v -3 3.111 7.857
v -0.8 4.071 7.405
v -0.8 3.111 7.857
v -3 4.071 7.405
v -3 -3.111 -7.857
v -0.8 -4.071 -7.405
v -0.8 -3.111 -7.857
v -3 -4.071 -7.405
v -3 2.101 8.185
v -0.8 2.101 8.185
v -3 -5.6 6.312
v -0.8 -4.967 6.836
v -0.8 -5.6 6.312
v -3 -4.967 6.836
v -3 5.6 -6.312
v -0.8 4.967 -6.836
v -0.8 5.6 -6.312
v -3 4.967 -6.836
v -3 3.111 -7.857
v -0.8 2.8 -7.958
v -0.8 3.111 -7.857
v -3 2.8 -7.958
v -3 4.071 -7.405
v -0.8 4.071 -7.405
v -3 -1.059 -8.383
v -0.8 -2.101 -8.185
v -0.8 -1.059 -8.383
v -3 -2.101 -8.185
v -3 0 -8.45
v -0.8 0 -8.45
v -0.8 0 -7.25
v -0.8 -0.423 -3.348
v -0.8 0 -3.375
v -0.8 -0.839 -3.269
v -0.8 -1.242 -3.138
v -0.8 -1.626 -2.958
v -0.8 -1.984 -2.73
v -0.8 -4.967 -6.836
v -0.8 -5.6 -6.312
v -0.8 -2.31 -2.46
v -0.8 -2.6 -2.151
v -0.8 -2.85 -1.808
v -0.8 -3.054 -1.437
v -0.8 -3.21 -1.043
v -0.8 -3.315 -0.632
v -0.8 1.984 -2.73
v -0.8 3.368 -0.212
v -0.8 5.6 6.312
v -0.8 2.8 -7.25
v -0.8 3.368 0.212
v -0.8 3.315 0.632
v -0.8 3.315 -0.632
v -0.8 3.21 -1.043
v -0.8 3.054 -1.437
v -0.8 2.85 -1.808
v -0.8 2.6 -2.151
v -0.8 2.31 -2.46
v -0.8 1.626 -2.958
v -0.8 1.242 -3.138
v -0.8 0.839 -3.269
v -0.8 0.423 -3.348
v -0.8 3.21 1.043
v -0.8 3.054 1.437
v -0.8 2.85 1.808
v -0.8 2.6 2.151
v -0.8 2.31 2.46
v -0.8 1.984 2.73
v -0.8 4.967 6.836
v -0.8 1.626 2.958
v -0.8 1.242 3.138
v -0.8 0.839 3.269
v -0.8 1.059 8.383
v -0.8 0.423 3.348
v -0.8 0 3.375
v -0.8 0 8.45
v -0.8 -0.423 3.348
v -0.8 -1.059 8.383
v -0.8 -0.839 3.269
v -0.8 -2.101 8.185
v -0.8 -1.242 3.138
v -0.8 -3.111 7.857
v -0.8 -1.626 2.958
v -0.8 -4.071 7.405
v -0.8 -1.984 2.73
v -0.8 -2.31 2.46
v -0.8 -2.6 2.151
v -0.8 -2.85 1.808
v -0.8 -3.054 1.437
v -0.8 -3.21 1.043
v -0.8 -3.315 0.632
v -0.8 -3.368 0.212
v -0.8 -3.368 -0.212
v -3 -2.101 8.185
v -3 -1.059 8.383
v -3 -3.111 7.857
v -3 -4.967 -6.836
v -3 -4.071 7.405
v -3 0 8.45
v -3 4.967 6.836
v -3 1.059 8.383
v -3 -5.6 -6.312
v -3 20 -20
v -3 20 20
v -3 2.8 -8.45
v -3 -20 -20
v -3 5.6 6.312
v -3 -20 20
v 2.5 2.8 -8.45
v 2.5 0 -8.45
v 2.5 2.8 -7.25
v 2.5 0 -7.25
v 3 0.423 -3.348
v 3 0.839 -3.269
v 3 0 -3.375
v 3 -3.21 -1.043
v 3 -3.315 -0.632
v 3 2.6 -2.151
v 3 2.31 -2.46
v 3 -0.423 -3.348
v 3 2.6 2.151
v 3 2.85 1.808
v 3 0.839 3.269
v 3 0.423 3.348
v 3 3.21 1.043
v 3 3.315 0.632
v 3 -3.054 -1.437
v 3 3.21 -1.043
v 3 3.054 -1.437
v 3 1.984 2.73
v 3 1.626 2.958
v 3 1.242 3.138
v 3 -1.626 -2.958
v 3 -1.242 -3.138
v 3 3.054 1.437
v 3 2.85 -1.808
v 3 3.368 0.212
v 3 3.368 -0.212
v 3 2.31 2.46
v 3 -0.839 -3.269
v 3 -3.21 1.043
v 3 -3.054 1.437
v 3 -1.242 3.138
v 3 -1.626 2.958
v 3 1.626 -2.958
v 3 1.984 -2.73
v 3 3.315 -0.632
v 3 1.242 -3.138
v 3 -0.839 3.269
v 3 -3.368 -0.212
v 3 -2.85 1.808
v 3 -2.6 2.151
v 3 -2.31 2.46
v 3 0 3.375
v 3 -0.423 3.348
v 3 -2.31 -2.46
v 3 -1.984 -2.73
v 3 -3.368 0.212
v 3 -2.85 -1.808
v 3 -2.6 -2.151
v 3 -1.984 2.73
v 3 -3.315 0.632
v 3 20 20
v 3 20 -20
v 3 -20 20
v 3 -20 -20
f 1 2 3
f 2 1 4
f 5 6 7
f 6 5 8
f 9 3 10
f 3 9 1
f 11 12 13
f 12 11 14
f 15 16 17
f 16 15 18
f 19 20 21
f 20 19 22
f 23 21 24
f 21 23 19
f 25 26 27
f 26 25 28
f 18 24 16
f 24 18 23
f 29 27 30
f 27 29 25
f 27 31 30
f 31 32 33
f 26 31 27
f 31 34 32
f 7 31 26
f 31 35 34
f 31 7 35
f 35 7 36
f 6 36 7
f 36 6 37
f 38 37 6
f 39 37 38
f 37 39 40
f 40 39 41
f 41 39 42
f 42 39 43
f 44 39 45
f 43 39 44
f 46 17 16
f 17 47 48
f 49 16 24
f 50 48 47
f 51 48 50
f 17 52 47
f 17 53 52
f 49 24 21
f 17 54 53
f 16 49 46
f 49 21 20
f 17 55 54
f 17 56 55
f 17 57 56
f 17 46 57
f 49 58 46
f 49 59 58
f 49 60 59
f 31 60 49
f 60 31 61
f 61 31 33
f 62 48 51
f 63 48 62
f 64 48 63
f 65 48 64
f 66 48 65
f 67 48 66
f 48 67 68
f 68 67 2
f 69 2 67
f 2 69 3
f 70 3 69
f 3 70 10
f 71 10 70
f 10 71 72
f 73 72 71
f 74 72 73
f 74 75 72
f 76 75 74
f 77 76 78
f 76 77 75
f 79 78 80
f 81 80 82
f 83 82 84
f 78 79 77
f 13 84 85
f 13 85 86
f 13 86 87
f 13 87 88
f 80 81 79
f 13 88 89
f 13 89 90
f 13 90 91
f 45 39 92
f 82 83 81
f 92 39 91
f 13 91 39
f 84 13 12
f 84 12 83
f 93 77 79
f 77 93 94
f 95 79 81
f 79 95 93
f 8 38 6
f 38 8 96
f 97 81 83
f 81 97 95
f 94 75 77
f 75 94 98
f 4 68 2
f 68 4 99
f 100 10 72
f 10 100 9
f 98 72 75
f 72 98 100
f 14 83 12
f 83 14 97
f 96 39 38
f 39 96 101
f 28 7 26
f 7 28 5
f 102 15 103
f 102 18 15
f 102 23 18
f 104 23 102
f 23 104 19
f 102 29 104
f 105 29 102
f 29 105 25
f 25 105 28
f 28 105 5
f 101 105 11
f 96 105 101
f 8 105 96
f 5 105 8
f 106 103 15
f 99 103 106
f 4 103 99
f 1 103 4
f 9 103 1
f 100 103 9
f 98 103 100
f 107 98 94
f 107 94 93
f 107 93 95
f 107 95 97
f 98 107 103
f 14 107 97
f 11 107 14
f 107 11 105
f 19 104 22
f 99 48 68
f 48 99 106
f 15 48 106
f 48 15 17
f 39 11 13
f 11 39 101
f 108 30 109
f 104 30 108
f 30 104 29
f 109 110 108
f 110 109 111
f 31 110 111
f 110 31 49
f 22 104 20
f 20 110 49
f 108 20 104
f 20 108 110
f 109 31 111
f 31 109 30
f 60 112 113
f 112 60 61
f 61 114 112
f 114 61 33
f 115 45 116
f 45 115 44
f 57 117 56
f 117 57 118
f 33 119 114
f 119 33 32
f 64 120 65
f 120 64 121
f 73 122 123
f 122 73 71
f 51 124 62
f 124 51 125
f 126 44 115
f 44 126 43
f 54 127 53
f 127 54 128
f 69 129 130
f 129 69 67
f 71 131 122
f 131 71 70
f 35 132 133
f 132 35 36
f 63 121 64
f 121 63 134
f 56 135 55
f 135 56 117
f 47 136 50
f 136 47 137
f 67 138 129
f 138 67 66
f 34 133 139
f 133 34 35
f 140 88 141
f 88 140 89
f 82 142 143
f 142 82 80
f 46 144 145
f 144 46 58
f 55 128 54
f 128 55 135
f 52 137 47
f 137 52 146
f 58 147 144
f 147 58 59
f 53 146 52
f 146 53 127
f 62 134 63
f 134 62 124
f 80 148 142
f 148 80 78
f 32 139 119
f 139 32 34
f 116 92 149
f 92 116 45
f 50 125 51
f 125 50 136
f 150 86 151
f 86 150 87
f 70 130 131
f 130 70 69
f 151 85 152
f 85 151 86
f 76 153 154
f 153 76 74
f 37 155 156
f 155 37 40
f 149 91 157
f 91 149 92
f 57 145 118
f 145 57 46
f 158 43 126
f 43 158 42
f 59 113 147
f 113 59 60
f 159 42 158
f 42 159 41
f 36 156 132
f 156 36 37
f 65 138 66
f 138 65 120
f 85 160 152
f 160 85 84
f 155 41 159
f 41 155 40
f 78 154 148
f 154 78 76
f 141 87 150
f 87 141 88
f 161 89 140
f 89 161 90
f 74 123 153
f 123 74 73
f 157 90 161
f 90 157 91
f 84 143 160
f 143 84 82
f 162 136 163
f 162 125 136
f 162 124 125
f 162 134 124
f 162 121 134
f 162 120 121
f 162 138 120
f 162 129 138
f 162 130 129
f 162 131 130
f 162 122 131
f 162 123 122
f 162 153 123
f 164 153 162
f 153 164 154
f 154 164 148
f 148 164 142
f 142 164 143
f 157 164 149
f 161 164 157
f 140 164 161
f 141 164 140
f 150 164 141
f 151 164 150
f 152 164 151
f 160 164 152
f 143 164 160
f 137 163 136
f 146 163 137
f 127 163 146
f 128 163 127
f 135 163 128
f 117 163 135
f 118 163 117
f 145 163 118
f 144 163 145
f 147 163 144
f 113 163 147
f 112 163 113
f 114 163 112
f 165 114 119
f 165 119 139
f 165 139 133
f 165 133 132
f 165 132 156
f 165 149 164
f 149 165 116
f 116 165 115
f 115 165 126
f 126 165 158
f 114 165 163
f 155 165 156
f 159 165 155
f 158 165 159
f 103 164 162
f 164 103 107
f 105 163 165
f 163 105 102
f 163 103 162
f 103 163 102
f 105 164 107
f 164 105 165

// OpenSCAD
/**
 * @author OlivierLD
 * 
 * A test, a stand for a B10K
 */
use <../mechanical.parts.scad>

bottomToFirstPlateTop = 8.2 + 1.3; // + 2.2;
standThnickness = 6;

difference() {
	cube(size=[standThnickness, 40, 40], center=true);
	translate([- (standThnickness / 2) - bottomToFirstPlateTop, 0, 0]) {
		rotate([0, 90, 0]) {
			#B10K();
		}
	}
}
